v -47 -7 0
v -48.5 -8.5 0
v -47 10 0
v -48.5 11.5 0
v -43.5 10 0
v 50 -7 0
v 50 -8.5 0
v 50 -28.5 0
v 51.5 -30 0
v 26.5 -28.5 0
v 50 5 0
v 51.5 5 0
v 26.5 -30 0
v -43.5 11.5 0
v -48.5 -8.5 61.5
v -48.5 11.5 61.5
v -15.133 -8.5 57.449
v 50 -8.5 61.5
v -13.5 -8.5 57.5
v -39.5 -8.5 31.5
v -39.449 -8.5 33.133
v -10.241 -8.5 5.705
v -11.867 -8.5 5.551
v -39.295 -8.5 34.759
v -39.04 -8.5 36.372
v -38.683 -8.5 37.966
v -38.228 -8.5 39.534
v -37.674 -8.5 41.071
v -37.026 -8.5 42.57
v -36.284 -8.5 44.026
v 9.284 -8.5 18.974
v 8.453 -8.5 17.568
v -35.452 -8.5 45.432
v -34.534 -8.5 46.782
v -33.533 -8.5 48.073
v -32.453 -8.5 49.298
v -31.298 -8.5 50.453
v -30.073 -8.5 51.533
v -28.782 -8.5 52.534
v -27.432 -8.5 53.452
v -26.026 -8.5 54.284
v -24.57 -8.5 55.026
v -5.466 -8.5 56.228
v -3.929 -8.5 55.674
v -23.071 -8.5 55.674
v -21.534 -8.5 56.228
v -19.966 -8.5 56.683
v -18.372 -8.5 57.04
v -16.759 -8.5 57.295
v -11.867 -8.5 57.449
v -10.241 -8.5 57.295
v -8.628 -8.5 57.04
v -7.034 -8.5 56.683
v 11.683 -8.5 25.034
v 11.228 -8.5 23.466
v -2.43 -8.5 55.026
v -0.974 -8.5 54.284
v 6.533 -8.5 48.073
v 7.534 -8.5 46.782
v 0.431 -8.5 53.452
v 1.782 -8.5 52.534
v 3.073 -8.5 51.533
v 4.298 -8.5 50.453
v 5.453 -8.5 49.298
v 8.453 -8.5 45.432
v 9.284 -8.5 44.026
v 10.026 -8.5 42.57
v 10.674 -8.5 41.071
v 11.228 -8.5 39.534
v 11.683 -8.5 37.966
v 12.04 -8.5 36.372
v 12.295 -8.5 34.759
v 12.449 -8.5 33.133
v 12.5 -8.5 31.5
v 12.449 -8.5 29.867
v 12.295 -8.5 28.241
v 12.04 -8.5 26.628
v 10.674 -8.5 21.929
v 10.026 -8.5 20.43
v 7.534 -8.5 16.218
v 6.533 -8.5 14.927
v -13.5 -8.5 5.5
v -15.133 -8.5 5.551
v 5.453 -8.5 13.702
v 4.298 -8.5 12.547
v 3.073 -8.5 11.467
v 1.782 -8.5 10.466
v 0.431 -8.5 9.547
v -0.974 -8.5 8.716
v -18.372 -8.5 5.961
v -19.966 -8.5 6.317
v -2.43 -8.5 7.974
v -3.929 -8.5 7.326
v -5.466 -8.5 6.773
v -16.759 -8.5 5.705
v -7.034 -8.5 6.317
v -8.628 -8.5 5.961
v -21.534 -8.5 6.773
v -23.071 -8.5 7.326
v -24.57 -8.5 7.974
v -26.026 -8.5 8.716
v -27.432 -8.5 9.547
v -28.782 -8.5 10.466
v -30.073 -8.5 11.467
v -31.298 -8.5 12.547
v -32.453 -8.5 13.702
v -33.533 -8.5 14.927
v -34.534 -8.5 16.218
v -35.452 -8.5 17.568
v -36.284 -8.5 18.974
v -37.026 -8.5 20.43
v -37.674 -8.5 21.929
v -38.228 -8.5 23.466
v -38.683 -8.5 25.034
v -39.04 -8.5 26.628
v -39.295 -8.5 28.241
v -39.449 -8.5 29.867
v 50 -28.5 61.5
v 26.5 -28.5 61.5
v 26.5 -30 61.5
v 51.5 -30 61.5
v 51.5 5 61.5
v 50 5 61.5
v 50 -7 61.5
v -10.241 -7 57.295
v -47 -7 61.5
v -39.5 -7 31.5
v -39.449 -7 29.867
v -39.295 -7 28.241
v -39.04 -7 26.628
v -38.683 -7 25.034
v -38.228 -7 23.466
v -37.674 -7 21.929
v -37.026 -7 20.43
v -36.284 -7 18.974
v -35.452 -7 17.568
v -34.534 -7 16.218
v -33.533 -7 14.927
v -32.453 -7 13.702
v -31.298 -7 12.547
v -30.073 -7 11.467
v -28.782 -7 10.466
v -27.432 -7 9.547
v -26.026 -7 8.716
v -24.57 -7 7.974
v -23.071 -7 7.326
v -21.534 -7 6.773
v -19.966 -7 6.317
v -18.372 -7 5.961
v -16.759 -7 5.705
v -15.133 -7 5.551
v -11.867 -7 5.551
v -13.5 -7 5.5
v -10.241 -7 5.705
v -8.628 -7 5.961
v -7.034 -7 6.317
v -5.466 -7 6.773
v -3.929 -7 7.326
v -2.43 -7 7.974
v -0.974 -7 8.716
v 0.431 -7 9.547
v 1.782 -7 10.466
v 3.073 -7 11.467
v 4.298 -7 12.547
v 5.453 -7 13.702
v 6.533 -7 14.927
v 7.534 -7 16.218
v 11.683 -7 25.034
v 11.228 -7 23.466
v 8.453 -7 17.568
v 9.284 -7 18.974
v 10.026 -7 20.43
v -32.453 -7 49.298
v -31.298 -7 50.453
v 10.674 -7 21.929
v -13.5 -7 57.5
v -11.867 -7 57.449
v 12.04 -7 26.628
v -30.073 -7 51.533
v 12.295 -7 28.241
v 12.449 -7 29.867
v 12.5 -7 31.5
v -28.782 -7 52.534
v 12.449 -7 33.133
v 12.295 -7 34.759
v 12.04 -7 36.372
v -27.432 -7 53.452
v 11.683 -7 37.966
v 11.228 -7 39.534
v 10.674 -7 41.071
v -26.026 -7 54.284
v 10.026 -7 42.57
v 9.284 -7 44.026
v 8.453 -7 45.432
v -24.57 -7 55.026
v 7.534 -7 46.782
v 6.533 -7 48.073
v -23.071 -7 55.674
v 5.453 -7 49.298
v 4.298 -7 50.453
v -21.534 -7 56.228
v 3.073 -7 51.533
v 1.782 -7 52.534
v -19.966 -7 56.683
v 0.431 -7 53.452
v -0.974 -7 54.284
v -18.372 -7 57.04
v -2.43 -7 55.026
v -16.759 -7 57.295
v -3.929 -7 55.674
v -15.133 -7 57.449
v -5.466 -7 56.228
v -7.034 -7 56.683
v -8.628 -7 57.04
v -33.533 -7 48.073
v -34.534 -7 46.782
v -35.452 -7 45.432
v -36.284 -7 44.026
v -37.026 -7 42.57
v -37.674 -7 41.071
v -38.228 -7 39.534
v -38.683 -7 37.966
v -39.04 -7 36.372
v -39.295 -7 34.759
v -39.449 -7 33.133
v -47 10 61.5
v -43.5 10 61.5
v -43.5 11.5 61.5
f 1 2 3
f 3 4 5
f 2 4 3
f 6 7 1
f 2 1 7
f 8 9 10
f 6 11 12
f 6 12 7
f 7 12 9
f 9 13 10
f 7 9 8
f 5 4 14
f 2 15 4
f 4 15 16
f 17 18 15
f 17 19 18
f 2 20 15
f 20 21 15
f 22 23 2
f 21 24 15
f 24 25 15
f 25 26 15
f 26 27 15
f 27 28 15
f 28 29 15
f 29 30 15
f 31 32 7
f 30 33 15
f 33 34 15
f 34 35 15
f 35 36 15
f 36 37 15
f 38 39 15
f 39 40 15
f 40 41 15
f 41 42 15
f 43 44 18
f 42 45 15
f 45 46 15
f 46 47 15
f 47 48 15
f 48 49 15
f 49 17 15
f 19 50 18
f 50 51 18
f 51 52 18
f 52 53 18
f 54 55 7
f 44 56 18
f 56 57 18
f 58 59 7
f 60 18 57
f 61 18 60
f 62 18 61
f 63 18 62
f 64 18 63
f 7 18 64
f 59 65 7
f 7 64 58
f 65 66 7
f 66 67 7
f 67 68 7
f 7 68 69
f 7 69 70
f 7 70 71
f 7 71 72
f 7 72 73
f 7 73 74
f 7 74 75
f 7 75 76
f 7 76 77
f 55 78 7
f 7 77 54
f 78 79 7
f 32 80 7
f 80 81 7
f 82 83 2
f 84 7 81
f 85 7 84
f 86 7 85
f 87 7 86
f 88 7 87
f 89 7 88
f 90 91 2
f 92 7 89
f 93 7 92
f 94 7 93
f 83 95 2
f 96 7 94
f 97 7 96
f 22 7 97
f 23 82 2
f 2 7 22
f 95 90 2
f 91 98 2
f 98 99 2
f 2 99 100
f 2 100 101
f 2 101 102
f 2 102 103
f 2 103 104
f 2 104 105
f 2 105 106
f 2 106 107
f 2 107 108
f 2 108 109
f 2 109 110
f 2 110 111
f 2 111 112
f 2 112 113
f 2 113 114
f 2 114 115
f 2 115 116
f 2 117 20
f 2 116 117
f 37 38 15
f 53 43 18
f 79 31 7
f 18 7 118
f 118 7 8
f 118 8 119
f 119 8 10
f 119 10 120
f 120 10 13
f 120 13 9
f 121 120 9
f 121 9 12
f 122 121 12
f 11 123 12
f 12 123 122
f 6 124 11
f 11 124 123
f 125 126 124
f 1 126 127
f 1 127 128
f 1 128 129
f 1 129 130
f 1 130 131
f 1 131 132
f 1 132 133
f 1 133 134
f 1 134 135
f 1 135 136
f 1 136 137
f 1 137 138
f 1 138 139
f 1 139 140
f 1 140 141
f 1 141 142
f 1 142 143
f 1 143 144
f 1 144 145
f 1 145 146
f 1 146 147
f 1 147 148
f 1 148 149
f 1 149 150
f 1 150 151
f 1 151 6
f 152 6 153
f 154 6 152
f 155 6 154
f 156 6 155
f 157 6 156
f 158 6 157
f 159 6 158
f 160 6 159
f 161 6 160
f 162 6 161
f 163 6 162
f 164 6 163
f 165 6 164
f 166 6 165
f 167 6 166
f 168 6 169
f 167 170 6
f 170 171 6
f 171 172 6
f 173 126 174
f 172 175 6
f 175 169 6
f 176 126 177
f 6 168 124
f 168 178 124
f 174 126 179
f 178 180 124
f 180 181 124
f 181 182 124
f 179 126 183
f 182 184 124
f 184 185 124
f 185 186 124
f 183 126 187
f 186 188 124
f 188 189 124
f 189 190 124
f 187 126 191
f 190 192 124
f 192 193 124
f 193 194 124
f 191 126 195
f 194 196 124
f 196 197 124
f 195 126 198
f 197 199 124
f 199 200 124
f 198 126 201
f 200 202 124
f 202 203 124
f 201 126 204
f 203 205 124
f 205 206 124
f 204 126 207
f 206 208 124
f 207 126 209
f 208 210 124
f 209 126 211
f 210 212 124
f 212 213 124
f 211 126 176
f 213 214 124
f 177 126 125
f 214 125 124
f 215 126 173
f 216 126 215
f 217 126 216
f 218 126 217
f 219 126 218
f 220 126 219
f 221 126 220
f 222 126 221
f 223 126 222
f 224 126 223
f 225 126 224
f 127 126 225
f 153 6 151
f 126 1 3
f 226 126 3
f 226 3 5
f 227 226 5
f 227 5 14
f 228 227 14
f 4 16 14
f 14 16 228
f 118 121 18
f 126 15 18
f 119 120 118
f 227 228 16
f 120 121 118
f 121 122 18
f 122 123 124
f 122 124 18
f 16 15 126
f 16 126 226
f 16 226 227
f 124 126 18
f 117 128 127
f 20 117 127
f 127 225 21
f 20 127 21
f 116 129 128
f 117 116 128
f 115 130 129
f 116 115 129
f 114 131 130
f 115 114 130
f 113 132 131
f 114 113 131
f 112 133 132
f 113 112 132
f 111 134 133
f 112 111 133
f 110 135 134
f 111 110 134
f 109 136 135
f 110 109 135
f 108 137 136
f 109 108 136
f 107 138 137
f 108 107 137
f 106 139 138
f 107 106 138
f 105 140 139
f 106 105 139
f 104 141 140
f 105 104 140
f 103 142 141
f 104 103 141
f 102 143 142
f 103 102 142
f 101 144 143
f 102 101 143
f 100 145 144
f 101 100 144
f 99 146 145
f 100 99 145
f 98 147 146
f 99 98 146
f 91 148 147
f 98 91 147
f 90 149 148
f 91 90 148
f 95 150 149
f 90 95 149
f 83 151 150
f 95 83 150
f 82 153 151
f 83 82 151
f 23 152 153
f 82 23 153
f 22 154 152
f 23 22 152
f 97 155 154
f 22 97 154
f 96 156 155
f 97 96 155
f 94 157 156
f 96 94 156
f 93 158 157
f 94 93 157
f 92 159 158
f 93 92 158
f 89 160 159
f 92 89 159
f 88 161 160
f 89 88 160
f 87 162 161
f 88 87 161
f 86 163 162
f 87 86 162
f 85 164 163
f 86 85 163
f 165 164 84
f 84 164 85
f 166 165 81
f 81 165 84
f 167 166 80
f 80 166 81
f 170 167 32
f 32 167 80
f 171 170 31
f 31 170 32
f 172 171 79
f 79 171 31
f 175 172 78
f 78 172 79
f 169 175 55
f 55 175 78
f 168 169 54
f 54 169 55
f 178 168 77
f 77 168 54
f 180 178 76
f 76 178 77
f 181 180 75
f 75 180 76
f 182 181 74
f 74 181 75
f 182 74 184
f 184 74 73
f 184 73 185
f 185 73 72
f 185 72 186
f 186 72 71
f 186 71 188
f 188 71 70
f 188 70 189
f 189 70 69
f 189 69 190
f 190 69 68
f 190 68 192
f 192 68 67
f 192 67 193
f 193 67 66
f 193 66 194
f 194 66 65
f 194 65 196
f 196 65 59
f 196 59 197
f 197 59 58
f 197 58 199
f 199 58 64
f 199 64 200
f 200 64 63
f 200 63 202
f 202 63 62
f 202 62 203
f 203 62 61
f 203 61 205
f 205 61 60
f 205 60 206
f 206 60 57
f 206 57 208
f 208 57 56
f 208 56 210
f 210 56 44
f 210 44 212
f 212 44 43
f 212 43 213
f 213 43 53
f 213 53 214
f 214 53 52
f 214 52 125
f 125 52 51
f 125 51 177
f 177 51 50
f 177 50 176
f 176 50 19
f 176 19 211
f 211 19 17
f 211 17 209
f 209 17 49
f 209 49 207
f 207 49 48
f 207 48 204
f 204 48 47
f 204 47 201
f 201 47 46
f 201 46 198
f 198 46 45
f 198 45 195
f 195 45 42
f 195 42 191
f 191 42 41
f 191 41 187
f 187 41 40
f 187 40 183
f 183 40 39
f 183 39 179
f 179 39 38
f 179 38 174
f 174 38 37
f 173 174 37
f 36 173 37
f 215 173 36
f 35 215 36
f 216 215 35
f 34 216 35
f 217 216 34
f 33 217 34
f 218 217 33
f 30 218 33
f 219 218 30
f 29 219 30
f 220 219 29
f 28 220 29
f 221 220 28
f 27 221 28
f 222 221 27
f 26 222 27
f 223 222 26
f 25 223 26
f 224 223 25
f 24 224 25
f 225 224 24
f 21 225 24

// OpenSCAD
height=97;
width=60;
wall=1.5;
thick=20;

arm=40; 
foot=35;

radius=26;

module holder(){
difference(){
  union(){
	cube([height+2*wall,thick+2*wall,width+wall]);
	//arm
	cube([wall,arm,width+wall]);
	translate([0,arm,0])cube([5,wall,width+wall]);

	//foot
	translate([height+wall,0,0])cube([wall,foot,width+wall]);
  }

	//inner cut out
	translate([-wall,wall,-wall])cube([height+2*wall,thick,width+4*wall]);

	//back wall
	translate([-5,-5,-5])cube([80,10,2*width]);

	//hole for cam
	translate([35,thick,wall+width/2])rotate([-90,0,0])cylinder(r=radius,h=4*wall,$fn=100);
}
}

translate([-height/2,-width/2,0])holder();
